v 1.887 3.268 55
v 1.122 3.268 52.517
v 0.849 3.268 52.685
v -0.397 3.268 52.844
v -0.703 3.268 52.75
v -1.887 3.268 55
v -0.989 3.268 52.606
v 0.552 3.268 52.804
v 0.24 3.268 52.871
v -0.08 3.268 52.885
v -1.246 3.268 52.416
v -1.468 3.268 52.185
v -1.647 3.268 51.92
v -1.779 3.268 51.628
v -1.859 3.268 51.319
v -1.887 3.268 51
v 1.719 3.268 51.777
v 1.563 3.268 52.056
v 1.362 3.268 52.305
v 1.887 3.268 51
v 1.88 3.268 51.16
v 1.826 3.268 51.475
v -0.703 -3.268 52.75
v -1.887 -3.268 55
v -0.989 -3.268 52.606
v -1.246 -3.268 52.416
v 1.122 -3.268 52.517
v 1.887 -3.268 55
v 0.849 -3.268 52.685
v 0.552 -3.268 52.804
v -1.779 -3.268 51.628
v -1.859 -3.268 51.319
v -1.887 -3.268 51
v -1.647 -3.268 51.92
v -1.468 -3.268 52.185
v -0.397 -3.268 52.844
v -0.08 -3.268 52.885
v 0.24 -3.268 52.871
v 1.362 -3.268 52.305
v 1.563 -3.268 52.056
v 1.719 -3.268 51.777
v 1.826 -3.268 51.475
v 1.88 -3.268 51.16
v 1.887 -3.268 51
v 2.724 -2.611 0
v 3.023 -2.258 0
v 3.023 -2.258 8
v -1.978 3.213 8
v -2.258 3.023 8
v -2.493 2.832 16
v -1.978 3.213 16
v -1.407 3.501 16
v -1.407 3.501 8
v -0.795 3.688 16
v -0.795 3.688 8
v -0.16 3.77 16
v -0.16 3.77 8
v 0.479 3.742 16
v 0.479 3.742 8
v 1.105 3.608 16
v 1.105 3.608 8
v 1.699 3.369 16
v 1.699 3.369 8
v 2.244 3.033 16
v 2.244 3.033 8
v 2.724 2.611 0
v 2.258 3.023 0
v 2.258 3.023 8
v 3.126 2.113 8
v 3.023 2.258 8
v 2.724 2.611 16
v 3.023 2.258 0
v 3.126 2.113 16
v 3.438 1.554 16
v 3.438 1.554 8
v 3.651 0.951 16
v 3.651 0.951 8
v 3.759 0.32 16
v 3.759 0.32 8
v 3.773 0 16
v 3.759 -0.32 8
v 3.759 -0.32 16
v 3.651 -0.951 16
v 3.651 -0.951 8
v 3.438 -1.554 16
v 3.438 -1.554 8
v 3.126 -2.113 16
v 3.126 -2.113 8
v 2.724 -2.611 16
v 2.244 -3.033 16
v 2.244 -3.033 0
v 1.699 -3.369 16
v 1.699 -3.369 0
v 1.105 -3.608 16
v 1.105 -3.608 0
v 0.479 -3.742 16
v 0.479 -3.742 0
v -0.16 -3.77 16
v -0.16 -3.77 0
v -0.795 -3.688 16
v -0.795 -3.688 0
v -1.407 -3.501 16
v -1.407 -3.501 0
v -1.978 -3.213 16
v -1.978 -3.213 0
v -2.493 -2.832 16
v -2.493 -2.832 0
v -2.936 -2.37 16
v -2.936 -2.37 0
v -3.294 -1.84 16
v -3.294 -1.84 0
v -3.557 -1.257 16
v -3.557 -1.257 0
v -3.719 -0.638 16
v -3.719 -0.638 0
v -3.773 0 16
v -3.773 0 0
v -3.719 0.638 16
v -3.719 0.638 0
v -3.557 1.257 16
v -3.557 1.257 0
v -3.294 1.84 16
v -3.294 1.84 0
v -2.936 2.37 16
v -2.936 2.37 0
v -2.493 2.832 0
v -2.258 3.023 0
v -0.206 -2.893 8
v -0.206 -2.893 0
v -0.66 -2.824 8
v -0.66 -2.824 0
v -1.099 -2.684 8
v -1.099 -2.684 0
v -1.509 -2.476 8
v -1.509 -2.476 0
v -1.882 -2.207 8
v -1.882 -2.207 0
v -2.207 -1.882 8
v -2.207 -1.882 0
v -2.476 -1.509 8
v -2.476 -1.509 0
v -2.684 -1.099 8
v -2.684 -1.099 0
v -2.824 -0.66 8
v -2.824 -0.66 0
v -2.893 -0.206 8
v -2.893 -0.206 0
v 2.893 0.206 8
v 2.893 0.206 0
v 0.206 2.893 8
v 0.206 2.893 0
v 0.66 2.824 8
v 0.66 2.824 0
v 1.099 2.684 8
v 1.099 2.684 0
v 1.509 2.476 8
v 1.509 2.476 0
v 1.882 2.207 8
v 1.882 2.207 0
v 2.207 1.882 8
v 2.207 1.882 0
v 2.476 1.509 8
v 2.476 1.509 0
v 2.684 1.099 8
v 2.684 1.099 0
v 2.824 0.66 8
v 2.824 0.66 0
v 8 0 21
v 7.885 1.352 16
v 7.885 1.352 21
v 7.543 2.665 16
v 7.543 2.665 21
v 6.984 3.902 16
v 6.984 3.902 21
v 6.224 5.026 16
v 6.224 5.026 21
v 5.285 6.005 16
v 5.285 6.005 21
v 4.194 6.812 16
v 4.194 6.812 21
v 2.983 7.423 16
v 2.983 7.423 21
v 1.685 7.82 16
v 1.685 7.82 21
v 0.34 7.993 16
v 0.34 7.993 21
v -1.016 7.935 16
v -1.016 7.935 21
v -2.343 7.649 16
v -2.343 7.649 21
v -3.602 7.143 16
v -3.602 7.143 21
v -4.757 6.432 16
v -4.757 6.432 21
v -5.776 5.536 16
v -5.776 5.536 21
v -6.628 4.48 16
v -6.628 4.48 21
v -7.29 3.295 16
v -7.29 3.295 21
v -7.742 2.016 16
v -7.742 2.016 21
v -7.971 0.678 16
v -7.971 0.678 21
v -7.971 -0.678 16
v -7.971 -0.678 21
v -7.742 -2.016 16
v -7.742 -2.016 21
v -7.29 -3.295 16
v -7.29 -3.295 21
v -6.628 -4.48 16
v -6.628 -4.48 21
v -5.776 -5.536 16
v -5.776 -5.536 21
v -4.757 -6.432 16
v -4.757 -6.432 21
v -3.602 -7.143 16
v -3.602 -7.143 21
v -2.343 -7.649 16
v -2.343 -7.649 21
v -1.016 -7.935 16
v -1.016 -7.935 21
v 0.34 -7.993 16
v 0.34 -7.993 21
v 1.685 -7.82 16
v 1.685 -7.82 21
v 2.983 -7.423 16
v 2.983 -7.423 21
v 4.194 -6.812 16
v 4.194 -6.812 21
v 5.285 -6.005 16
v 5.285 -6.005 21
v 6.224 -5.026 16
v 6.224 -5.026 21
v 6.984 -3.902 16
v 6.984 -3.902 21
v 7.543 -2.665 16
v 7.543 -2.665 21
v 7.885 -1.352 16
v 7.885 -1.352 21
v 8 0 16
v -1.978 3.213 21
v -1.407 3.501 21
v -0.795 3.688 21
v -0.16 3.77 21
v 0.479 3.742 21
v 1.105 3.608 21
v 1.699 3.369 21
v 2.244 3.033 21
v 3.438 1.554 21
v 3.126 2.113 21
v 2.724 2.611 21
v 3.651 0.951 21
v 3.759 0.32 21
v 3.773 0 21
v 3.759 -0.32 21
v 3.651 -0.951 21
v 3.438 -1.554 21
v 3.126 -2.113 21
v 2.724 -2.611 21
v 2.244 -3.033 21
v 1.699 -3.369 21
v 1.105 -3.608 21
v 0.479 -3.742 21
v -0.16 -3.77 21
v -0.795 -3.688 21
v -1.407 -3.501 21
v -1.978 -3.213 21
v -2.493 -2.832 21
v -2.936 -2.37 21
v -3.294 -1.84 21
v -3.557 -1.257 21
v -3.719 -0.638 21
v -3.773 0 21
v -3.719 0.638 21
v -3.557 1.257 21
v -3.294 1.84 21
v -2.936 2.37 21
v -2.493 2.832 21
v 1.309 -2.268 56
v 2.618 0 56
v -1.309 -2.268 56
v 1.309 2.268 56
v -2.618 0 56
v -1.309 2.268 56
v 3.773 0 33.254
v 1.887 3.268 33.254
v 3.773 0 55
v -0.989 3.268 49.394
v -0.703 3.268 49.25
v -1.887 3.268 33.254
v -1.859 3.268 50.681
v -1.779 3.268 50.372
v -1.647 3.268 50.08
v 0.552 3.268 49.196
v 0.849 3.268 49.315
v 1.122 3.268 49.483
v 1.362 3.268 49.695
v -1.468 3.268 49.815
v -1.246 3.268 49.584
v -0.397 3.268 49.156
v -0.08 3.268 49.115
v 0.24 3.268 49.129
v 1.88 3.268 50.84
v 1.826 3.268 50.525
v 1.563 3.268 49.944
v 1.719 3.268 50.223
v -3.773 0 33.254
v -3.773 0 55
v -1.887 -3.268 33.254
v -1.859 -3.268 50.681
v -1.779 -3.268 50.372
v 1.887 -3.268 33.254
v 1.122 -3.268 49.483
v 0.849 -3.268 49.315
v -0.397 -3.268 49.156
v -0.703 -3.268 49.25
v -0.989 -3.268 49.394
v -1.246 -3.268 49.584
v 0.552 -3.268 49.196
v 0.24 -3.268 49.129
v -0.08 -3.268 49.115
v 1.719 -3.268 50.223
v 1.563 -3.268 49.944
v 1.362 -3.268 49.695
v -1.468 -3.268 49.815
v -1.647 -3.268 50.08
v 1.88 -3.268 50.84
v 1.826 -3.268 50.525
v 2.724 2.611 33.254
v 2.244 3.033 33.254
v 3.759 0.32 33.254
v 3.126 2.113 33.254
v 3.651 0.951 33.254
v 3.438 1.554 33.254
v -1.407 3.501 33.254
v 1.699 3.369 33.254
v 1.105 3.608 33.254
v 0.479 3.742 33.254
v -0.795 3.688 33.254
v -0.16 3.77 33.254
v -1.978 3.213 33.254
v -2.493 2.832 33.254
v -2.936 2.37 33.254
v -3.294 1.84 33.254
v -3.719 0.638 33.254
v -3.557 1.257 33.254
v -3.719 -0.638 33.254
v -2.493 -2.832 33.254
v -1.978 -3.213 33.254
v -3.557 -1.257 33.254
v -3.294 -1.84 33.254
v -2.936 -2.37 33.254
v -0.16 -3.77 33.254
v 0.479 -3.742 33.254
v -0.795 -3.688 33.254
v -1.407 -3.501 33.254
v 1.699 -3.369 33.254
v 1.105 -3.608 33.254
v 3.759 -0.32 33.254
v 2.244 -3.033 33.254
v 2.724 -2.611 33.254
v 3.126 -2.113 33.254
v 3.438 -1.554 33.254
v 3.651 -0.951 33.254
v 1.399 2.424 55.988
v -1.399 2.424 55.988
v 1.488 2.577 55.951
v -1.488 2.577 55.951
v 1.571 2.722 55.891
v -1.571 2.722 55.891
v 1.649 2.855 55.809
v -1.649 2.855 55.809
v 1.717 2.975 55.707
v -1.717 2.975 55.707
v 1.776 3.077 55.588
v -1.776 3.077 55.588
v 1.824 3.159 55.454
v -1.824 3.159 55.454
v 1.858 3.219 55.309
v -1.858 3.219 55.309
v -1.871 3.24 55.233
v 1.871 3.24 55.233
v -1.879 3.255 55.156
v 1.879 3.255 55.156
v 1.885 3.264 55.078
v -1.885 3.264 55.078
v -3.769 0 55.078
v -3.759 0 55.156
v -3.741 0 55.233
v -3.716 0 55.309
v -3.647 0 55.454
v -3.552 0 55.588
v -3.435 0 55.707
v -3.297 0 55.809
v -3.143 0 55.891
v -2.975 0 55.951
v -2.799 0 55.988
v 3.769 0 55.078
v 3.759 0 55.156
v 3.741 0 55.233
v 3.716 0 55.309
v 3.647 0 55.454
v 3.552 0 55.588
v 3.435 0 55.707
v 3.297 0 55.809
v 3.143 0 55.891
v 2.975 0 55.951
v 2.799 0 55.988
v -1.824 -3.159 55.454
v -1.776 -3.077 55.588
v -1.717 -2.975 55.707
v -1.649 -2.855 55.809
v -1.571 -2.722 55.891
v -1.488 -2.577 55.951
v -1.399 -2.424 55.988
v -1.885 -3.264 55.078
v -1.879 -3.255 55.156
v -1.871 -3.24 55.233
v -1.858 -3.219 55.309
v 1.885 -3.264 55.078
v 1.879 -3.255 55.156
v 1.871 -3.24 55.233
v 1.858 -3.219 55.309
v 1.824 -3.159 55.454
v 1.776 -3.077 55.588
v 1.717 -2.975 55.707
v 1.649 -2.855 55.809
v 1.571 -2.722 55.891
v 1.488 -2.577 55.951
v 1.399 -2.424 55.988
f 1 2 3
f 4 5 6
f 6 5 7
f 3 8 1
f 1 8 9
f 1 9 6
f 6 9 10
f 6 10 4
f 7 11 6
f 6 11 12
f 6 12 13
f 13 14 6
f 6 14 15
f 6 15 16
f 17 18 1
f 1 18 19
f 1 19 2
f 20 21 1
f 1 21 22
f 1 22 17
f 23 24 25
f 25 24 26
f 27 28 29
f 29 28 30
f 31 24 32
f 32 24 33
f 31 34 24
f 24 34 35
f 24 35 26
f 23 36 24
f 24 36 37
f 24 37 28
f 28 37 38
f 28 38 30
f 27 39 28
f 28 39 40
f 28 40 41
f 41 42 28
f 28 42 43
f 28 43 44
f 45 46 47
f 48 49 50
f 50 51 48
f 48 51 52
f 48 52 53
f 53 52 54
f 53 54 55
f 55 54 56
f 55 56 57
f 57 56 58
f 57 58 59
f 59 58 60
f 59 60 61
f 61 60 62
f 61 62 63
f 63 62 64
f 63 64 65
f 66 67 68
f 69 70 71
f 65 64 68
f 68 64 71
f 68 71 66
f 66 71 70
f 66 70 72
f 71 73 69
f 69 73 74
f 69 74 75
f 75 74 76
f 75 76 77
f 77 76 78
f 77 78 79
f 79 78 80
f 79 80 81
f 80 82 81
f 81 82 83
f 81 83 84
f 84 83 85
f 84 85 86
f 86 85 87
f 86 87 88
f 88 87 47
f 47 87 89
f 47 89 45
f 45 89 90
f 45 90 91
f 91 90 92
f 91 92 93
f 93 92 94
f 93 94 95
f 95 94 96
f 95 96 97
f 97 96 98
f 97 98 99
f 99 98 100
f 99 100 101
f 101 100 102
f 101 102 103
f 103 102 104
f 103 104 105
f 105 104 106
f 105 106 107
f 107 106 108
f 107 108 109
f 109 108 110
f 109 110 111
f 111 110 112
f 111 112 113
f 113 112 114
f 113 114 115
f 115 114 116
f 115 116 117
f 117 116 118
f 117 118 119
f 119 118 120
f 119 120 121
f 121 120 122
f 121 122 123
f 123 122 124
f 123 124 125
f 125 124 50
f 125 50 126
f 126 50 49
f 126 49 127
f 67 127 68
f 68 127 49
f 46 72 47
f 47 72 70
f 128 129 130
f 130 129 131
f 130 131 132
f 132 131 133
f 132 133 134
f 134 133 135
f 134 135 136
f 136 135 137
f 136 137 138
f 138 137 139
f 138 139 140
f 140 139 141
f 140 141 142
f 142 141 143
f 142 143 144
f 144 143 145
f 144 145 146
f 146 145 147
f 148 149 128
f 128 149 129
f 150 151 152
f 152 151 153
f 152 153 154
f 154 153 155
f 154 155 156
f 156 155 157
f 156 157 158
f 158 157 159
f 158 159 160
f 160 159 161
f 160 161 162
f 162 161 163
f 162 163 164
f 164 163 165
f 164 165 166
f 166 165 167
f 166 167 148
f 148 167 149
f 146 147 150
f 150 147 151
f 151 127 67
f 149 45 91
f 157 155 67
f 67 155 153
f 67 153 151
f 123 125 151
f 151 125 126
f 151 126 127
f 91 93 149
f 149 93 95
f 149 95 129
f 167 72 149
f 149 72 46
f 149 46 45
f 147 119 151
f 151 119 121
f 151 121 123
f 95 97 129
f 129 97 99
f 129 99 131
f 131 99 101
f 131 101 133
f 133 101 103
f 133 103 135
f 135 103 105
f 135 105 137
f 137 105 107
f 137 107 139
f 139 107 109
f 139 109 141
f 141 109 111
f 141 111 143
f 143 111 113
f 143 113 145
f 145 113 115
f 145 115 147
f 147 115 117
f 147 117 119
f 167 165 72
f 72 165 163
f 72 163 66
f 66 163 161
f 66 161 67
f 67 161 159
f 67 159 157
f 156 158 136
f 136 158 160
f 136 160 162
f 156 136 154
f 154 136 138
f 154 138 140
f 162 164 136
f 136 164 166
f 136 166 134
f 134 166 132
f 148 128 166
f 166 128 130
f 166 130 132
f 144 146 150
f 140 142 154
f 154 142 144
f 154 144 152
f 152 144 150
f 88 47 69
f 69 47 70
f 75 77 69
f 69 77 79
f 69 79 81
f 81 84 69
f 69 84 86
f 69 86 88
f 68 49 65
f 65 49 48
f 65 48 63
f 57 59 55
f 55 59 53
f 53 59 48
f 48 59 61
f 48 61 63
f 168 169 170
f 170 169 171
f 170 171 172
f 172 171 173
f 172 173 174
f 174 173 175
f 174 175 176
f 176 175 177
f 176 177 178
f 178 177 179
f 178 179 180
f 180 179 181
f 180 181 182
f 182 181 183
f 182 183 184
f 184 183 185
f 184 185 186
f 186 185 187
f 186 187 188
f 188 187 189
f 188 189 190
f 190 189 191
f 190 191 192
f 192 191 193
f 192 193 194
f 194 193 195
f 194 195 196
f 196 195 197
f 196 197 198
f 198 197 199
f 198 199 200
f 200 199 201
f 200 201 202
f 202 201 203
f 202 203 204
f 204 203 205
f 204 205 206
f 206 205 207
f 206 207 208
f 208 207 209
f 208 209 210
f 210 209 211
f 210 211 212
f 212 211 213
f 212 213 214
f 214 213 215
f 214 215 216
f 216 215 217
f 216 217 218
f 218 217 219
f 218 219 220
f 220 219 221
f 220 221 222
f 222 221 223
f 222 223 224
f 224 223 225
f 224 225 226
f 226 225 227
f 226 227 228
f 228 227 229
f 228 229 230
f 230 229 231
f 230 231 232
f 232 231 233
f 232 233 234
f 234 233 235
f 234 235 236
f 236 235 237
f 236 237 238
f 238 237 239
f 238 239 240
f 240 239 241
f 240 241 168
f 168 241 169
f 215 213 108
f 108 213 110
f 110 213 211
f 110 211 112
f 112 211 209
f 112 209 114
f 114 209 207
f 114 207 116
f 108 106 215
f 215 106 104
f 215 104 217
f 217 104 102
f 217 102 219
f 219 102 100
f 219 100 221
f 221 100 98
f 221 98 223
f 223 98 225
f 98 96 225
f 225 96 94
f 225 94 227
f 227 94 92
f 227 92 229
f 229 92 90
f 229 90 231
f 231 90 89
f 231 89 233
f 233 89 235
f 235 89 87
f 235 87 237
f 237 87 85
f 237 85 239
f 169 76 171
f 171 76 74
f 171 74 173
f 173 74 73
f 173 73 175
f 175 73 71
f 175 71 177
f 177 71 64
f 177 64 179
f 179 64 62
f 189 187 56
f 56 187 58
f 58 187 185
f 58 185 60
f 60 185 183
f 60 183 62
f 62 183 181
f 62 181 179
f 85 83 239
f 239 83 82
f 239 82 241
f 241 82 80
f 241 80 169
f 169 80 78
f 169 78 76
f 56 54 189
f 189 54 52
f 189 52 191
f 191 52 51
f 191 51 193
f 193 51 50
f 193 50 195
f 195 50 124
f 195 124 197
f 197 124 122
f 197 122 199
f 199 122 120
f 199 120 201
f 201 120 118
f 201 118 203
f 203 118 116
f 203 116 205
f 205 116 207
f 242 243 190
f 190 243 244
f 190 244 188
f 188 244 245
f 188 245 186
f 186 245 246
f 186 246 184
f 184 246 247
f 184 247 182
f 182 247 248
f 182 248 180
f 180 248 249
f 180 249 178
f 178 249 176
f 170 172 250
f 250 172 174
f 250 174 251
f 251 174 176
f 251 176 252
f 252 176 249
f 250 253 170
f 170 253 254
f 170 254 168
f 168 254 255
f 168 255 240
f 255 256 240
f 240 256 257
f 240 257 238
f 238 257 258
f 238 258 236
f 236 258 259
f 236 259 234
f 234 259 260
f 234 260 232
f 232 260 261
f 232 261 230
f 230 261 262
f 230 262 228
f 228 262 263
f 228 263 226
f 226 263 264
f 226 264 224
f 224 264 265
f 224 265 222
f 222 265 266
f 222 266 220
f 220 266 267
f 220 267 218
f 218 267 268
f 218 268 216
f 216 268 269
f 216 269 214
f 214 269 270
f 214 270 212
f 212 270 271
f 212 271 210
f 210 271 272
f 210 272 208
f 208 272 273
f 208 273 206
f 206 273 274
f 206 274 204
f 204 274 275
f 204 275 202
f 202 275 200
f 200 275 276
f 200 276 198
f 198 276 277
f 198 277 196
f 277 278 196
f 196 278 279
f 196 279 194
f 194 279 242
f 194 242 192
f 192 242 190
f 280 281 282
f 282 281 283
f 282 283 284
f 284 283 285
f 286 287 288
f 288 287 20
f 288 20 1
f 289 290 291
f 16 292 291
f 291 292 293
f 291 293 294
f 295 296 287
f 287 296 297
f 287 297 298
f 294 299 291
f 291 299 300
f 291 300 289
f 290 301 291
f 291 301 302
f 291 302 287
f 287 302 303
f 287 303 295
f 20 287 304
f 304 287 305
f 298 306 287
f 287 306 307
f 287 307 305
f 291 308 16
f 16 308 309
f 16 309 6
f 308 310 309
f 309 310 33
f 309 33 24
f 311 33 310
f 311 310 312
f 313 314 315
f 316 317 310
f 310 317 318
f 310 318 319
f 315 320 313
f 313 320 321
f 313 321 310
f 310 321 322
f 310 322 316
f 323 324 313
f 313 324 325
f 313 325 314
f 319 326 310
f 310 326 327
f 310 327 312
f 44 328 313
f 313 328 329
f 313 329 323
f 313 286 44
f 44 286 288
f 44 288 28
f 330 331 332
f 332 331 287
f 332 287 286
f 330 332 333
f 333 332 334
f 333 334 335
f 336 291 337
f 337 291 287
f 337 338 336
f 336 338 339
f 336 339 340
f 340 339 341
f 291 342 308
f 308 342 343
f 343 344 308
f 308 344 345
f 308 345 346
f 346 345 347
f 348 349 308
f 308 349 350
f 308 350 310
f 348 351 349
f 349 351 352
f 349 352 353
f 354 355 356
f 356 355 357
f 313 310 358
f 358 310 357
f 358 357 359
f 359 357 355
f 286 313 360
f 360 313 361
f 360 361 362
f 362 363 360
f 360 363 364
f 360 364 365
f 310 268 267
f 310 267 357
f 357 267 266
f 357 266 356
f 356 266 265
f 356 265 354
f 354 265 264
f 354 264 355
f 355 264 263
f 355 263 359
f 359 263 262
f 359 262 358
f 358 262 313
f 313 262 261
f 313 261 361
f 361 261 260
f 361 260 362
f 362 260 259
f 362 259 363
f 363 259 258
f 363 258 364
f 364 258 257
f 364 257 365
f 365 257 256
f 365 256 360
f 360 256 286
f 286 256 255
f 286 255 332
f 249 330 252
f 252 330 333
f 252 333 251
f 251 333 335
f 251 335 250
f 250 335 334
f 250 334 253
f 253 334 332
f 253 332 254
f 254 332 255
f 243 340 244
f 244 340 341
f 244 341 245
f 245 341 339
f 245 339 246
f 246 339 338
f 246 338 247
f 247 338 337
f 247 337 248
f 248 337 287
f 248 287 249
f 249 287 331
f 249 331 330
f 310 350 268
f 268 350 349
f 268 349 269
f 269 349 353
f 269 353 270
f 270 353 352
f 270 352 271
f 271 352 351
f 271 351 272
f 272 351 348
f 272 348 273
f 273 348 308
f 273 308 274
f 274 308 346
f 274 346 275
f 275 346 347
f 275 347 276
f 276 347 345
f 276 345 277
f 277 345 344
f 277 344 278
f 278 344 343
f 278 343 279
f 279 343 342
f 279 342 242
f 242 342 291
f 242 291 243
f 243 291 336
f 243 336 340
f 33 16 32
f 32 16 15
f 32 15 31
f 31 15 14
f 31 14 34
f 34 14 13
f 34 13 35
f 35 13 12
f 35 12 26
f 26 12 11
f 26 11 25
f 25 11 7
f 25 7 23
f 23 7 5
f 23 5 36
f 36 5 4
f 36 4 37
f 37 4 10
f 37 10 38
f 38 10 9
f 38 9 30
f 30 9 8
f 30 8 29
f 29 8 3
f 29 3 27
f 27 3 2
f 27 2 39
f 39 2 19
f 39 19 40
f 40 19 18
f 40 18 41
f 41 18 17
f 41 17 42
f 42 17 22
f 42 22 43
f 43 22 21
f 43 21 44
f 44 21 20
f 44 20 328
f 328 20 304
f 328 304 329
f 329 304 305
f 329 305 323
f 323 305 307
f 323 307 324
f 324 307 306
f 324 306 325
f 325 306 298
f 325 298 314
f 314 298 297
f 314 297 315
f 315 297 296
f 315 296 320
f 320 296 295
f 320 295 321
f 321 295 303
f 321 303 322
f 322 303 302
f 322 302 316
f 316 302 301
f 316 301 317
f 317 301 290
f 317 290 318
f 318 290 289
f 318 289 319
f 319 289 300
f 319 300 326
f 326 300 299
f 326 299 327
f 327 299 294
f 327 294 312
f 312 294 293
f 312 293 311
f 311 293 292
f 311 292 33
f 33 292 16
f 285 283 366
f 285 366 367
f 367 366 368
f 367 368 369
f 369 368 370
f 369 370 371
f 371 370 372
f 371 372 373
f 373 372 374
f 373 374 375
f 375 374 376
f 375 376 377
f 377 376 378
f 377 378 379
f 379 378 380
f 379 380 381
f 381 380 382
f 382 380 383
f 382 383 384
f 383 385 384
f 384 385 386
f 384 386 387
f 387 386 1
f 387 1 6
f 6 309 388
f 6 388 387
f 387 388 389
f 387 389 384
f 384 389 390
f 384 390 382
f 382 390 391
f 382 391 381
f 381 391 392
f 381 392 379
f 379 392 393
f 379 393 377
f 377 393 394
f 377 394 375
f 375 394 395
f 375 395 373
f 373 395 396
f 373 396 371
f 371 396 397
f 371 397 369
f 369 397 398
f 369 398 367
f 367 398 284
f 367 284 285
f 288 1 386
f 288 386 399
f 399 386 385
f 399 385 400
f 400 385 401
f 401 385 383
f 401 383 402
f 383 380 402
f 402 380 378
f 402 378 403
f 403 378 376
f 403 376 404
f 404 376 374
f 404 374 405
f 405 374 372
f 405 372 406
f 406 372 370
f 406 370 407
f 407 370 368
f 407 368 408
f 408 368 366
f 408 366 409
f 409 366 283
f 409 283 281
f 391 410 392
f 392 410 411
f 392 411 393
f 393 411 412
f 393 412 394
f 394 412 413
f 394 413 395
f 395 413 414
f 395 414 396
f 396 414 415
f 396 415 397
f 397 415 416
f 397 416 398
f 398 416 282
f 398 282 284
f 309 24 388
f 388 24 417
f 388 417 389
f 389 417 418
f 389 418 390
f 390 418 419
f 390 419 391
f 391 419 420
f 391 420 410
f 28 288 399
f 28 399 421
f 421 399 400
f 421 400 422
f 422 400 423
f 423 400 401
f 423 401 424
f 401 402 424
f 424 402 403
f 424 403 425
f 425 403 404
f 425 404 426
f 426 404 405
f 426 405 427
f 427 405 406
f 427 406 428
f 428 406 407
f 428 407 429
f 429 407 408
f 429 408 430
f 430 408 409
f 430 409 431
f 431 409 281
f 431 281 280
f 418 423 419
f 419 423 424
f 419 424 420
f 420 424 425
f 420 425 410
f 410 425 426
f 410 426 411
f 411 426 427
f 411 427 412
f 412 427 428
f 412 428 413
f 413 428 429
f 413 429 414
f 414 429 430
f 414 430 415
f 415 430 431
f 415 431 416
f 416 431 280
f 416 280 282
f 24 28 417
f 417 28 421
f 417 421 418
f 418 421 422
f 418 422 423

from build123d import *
from build123d.topology import SkipClean

# Parameters (mm, degrees)
BOSS_EXTRUDE1_DEPTH = 8.25
BOSS_EXTRUDE2_DEPTH = 7.75
BOSS_EXTRUDE3_START = -8
SKETCH3_R           = 3.773
BOSS_EXTRUDE3_DEPTH = 8
BOSS_EXTRUDE4_DEPTH = 30
SKETCH6_R           = 3.773
BOSS_EXTRUDE5_DEPTH = 10
SKETCH7_R           = 3.773
BOSS_EXTRUDE6_DEPTH = 7.254
BOSS_EXTRUDE7_DEPTH = 10
SKETCH9_R           = 8
BOSS_EXTRUDE8_DEPTH = 5
SKETCH10_R          = 1.8865
CUT_EXTRUDE1_DEPTH  = 58.679779
FILLET1_R           = 1


with BuildPart() as part:
    # Sketch1 → Boss-Extrude1 (new body)
    with BuildSketch(Plane.XY):
        with BuildLine():
            Line((-2.257654, 3.023), (2.257654, 3.023))
            ThreePointArc((2.257654, 3.023), (2.667914, 2.667914), (3.023, 2.257654))
            Line((3.023, 2.257654), (3.023, -2.257654))
            ThreePointArc((3.023, -2.257654), (-2.667914, -2.667914), (-2.257654, 3.023))
        make_face()
        with BuildLine():
            Line((-2.892696, -0.20569), (0.20569, 2.892696))
            ThreePointArc((0.20569, 2.892696), (2.05061, 2.05061), (2.892696, 0.20569))
            Line((2.892696, 0.20569), (-0.20569, -2.892696))
            ThreePointArc((-0.20569, -2.892696), (-2.05061, -2.05061), (-2.892696, -0.20569))
        make_face(mode=Mode.SUBTRACT)
    extrude(amount=BOSS_EXTRUDE1_DEPTH)

    # Sketch2 → Boss-Extrude2 (add)
    with SkipClean():  # the faces are left unmerged after this step: merging them gives an invalid solid
        with BuildSketch(Plane.XY.offset(8.25)):
            with BuildLine():
                Line((2.257654, 3.023), (-2.257654, 3.023))
                ThreePointArc((-2.257654, 3.023), (-2.667914, -2.667914), (3.023, -2.257654))
                Line((3.023, -2.257654), (3.023, 2.257654))
                ThreePointArc((3.023, 2.257654), (2.667914, 2.667914), (2.257654, 3.023))
            make_face()
        extrude(amount=BOSS_EXTRUDE2_DEPTH)

    # Sketch3 → Boss-Extrude3 (add)
    with BuildSketch(Plane.XY.offset(16).offset(BOSS_EXTRUDE3_START)):
        with Locations(Location((0, 0, 0), (0, 0, 126.753315))):
            Circle(SKETCH3_R)
    extrude(amount=BOSS_EXTRUDE3_DEPTH)

    # Sketch5 → Boss-Extrude4 (add)
    with BuildSketch(Plane.XY.offset(16)):
        Polygon((1.8865, 3.267514), (-1.8865, 3.267514), (-3.773, 0), (-1.8865, -3.267514), (1.8865, -3.267514), (3.773, 0), align=None)
    extrude(amount=BOSS_EXTRUDE4_DEPTH)

    # Sketch6 → Boss-Extrude5 (add)
    with BuildSketch(Plane.XY.offset(16)):
        with Locations(Location((0, 0, 0), (0, 0, 180))):
            Circle(SKETCH6_R)
    extrude(amount=BOSS_EXTRUDE5_DEPTH)

    # Sketch7 → Boss-Extrude6 (add)
    with BuildSketch(Plane.XY.offset(26)):
        with Locations(Location((0, 0, 0), (0, 0, 180))):
            Circle(SKETCH7_R)
    extrude(amount=BOSS_EXTRUDE6_DEPTH)

    # Sketch8 → Boss-Extrude7 (add)
    with BuildSketch(Plane.XY.offset(46)):
        Polygon((3.773, 0), (1.8865, 3.267514), (-1.8865, 3.267514), (-3.773, 0), (-1.8865, -3.267514), (1.8865, -3.267514), align=None)
    extrude(amount=BOSS_EXTRUDE7_DEPTH)

    # Sketch9 → Boss-Extrude8 (add)
    with BuildSketch(Plane.XY.offset(21)):
        Circle(SKETCH9_R)
    extrude(amount=-BOSS_EXTRUDE8_DEPTH)

    # Sketch10 → Cut-Extrude1 (cut, through all)
    with BuildSketch(Plane(origin=(0, 3.267514, 0), x_dir=(1, 0, 0), z_dir=(0, 1, 0))):
        with Locations(Location((0, -51, 0), (0, 0, 180))):
            Circle(SKETCH10_R)
    extrude(amount=-CUT_EXTRUDE1_DEPTH, mode=Mode.SUBTRACT)

    # Fillet1
    fillet1_edges = [part.edges().sort_by_distance(p)[0] for p in [
        (2.82975, -1.633757, 56),
        (2.82975, 1.633757, 56),
        (0, 3.267514, 56),
        (-2.82975, 1.633757, 56),
        (-2.82975, -1.633757, 56),
        (0, -3.267514, 56),
    ]]
    fillet(fillet1_edges, radius=FILLET1_R)


solid = part.part
